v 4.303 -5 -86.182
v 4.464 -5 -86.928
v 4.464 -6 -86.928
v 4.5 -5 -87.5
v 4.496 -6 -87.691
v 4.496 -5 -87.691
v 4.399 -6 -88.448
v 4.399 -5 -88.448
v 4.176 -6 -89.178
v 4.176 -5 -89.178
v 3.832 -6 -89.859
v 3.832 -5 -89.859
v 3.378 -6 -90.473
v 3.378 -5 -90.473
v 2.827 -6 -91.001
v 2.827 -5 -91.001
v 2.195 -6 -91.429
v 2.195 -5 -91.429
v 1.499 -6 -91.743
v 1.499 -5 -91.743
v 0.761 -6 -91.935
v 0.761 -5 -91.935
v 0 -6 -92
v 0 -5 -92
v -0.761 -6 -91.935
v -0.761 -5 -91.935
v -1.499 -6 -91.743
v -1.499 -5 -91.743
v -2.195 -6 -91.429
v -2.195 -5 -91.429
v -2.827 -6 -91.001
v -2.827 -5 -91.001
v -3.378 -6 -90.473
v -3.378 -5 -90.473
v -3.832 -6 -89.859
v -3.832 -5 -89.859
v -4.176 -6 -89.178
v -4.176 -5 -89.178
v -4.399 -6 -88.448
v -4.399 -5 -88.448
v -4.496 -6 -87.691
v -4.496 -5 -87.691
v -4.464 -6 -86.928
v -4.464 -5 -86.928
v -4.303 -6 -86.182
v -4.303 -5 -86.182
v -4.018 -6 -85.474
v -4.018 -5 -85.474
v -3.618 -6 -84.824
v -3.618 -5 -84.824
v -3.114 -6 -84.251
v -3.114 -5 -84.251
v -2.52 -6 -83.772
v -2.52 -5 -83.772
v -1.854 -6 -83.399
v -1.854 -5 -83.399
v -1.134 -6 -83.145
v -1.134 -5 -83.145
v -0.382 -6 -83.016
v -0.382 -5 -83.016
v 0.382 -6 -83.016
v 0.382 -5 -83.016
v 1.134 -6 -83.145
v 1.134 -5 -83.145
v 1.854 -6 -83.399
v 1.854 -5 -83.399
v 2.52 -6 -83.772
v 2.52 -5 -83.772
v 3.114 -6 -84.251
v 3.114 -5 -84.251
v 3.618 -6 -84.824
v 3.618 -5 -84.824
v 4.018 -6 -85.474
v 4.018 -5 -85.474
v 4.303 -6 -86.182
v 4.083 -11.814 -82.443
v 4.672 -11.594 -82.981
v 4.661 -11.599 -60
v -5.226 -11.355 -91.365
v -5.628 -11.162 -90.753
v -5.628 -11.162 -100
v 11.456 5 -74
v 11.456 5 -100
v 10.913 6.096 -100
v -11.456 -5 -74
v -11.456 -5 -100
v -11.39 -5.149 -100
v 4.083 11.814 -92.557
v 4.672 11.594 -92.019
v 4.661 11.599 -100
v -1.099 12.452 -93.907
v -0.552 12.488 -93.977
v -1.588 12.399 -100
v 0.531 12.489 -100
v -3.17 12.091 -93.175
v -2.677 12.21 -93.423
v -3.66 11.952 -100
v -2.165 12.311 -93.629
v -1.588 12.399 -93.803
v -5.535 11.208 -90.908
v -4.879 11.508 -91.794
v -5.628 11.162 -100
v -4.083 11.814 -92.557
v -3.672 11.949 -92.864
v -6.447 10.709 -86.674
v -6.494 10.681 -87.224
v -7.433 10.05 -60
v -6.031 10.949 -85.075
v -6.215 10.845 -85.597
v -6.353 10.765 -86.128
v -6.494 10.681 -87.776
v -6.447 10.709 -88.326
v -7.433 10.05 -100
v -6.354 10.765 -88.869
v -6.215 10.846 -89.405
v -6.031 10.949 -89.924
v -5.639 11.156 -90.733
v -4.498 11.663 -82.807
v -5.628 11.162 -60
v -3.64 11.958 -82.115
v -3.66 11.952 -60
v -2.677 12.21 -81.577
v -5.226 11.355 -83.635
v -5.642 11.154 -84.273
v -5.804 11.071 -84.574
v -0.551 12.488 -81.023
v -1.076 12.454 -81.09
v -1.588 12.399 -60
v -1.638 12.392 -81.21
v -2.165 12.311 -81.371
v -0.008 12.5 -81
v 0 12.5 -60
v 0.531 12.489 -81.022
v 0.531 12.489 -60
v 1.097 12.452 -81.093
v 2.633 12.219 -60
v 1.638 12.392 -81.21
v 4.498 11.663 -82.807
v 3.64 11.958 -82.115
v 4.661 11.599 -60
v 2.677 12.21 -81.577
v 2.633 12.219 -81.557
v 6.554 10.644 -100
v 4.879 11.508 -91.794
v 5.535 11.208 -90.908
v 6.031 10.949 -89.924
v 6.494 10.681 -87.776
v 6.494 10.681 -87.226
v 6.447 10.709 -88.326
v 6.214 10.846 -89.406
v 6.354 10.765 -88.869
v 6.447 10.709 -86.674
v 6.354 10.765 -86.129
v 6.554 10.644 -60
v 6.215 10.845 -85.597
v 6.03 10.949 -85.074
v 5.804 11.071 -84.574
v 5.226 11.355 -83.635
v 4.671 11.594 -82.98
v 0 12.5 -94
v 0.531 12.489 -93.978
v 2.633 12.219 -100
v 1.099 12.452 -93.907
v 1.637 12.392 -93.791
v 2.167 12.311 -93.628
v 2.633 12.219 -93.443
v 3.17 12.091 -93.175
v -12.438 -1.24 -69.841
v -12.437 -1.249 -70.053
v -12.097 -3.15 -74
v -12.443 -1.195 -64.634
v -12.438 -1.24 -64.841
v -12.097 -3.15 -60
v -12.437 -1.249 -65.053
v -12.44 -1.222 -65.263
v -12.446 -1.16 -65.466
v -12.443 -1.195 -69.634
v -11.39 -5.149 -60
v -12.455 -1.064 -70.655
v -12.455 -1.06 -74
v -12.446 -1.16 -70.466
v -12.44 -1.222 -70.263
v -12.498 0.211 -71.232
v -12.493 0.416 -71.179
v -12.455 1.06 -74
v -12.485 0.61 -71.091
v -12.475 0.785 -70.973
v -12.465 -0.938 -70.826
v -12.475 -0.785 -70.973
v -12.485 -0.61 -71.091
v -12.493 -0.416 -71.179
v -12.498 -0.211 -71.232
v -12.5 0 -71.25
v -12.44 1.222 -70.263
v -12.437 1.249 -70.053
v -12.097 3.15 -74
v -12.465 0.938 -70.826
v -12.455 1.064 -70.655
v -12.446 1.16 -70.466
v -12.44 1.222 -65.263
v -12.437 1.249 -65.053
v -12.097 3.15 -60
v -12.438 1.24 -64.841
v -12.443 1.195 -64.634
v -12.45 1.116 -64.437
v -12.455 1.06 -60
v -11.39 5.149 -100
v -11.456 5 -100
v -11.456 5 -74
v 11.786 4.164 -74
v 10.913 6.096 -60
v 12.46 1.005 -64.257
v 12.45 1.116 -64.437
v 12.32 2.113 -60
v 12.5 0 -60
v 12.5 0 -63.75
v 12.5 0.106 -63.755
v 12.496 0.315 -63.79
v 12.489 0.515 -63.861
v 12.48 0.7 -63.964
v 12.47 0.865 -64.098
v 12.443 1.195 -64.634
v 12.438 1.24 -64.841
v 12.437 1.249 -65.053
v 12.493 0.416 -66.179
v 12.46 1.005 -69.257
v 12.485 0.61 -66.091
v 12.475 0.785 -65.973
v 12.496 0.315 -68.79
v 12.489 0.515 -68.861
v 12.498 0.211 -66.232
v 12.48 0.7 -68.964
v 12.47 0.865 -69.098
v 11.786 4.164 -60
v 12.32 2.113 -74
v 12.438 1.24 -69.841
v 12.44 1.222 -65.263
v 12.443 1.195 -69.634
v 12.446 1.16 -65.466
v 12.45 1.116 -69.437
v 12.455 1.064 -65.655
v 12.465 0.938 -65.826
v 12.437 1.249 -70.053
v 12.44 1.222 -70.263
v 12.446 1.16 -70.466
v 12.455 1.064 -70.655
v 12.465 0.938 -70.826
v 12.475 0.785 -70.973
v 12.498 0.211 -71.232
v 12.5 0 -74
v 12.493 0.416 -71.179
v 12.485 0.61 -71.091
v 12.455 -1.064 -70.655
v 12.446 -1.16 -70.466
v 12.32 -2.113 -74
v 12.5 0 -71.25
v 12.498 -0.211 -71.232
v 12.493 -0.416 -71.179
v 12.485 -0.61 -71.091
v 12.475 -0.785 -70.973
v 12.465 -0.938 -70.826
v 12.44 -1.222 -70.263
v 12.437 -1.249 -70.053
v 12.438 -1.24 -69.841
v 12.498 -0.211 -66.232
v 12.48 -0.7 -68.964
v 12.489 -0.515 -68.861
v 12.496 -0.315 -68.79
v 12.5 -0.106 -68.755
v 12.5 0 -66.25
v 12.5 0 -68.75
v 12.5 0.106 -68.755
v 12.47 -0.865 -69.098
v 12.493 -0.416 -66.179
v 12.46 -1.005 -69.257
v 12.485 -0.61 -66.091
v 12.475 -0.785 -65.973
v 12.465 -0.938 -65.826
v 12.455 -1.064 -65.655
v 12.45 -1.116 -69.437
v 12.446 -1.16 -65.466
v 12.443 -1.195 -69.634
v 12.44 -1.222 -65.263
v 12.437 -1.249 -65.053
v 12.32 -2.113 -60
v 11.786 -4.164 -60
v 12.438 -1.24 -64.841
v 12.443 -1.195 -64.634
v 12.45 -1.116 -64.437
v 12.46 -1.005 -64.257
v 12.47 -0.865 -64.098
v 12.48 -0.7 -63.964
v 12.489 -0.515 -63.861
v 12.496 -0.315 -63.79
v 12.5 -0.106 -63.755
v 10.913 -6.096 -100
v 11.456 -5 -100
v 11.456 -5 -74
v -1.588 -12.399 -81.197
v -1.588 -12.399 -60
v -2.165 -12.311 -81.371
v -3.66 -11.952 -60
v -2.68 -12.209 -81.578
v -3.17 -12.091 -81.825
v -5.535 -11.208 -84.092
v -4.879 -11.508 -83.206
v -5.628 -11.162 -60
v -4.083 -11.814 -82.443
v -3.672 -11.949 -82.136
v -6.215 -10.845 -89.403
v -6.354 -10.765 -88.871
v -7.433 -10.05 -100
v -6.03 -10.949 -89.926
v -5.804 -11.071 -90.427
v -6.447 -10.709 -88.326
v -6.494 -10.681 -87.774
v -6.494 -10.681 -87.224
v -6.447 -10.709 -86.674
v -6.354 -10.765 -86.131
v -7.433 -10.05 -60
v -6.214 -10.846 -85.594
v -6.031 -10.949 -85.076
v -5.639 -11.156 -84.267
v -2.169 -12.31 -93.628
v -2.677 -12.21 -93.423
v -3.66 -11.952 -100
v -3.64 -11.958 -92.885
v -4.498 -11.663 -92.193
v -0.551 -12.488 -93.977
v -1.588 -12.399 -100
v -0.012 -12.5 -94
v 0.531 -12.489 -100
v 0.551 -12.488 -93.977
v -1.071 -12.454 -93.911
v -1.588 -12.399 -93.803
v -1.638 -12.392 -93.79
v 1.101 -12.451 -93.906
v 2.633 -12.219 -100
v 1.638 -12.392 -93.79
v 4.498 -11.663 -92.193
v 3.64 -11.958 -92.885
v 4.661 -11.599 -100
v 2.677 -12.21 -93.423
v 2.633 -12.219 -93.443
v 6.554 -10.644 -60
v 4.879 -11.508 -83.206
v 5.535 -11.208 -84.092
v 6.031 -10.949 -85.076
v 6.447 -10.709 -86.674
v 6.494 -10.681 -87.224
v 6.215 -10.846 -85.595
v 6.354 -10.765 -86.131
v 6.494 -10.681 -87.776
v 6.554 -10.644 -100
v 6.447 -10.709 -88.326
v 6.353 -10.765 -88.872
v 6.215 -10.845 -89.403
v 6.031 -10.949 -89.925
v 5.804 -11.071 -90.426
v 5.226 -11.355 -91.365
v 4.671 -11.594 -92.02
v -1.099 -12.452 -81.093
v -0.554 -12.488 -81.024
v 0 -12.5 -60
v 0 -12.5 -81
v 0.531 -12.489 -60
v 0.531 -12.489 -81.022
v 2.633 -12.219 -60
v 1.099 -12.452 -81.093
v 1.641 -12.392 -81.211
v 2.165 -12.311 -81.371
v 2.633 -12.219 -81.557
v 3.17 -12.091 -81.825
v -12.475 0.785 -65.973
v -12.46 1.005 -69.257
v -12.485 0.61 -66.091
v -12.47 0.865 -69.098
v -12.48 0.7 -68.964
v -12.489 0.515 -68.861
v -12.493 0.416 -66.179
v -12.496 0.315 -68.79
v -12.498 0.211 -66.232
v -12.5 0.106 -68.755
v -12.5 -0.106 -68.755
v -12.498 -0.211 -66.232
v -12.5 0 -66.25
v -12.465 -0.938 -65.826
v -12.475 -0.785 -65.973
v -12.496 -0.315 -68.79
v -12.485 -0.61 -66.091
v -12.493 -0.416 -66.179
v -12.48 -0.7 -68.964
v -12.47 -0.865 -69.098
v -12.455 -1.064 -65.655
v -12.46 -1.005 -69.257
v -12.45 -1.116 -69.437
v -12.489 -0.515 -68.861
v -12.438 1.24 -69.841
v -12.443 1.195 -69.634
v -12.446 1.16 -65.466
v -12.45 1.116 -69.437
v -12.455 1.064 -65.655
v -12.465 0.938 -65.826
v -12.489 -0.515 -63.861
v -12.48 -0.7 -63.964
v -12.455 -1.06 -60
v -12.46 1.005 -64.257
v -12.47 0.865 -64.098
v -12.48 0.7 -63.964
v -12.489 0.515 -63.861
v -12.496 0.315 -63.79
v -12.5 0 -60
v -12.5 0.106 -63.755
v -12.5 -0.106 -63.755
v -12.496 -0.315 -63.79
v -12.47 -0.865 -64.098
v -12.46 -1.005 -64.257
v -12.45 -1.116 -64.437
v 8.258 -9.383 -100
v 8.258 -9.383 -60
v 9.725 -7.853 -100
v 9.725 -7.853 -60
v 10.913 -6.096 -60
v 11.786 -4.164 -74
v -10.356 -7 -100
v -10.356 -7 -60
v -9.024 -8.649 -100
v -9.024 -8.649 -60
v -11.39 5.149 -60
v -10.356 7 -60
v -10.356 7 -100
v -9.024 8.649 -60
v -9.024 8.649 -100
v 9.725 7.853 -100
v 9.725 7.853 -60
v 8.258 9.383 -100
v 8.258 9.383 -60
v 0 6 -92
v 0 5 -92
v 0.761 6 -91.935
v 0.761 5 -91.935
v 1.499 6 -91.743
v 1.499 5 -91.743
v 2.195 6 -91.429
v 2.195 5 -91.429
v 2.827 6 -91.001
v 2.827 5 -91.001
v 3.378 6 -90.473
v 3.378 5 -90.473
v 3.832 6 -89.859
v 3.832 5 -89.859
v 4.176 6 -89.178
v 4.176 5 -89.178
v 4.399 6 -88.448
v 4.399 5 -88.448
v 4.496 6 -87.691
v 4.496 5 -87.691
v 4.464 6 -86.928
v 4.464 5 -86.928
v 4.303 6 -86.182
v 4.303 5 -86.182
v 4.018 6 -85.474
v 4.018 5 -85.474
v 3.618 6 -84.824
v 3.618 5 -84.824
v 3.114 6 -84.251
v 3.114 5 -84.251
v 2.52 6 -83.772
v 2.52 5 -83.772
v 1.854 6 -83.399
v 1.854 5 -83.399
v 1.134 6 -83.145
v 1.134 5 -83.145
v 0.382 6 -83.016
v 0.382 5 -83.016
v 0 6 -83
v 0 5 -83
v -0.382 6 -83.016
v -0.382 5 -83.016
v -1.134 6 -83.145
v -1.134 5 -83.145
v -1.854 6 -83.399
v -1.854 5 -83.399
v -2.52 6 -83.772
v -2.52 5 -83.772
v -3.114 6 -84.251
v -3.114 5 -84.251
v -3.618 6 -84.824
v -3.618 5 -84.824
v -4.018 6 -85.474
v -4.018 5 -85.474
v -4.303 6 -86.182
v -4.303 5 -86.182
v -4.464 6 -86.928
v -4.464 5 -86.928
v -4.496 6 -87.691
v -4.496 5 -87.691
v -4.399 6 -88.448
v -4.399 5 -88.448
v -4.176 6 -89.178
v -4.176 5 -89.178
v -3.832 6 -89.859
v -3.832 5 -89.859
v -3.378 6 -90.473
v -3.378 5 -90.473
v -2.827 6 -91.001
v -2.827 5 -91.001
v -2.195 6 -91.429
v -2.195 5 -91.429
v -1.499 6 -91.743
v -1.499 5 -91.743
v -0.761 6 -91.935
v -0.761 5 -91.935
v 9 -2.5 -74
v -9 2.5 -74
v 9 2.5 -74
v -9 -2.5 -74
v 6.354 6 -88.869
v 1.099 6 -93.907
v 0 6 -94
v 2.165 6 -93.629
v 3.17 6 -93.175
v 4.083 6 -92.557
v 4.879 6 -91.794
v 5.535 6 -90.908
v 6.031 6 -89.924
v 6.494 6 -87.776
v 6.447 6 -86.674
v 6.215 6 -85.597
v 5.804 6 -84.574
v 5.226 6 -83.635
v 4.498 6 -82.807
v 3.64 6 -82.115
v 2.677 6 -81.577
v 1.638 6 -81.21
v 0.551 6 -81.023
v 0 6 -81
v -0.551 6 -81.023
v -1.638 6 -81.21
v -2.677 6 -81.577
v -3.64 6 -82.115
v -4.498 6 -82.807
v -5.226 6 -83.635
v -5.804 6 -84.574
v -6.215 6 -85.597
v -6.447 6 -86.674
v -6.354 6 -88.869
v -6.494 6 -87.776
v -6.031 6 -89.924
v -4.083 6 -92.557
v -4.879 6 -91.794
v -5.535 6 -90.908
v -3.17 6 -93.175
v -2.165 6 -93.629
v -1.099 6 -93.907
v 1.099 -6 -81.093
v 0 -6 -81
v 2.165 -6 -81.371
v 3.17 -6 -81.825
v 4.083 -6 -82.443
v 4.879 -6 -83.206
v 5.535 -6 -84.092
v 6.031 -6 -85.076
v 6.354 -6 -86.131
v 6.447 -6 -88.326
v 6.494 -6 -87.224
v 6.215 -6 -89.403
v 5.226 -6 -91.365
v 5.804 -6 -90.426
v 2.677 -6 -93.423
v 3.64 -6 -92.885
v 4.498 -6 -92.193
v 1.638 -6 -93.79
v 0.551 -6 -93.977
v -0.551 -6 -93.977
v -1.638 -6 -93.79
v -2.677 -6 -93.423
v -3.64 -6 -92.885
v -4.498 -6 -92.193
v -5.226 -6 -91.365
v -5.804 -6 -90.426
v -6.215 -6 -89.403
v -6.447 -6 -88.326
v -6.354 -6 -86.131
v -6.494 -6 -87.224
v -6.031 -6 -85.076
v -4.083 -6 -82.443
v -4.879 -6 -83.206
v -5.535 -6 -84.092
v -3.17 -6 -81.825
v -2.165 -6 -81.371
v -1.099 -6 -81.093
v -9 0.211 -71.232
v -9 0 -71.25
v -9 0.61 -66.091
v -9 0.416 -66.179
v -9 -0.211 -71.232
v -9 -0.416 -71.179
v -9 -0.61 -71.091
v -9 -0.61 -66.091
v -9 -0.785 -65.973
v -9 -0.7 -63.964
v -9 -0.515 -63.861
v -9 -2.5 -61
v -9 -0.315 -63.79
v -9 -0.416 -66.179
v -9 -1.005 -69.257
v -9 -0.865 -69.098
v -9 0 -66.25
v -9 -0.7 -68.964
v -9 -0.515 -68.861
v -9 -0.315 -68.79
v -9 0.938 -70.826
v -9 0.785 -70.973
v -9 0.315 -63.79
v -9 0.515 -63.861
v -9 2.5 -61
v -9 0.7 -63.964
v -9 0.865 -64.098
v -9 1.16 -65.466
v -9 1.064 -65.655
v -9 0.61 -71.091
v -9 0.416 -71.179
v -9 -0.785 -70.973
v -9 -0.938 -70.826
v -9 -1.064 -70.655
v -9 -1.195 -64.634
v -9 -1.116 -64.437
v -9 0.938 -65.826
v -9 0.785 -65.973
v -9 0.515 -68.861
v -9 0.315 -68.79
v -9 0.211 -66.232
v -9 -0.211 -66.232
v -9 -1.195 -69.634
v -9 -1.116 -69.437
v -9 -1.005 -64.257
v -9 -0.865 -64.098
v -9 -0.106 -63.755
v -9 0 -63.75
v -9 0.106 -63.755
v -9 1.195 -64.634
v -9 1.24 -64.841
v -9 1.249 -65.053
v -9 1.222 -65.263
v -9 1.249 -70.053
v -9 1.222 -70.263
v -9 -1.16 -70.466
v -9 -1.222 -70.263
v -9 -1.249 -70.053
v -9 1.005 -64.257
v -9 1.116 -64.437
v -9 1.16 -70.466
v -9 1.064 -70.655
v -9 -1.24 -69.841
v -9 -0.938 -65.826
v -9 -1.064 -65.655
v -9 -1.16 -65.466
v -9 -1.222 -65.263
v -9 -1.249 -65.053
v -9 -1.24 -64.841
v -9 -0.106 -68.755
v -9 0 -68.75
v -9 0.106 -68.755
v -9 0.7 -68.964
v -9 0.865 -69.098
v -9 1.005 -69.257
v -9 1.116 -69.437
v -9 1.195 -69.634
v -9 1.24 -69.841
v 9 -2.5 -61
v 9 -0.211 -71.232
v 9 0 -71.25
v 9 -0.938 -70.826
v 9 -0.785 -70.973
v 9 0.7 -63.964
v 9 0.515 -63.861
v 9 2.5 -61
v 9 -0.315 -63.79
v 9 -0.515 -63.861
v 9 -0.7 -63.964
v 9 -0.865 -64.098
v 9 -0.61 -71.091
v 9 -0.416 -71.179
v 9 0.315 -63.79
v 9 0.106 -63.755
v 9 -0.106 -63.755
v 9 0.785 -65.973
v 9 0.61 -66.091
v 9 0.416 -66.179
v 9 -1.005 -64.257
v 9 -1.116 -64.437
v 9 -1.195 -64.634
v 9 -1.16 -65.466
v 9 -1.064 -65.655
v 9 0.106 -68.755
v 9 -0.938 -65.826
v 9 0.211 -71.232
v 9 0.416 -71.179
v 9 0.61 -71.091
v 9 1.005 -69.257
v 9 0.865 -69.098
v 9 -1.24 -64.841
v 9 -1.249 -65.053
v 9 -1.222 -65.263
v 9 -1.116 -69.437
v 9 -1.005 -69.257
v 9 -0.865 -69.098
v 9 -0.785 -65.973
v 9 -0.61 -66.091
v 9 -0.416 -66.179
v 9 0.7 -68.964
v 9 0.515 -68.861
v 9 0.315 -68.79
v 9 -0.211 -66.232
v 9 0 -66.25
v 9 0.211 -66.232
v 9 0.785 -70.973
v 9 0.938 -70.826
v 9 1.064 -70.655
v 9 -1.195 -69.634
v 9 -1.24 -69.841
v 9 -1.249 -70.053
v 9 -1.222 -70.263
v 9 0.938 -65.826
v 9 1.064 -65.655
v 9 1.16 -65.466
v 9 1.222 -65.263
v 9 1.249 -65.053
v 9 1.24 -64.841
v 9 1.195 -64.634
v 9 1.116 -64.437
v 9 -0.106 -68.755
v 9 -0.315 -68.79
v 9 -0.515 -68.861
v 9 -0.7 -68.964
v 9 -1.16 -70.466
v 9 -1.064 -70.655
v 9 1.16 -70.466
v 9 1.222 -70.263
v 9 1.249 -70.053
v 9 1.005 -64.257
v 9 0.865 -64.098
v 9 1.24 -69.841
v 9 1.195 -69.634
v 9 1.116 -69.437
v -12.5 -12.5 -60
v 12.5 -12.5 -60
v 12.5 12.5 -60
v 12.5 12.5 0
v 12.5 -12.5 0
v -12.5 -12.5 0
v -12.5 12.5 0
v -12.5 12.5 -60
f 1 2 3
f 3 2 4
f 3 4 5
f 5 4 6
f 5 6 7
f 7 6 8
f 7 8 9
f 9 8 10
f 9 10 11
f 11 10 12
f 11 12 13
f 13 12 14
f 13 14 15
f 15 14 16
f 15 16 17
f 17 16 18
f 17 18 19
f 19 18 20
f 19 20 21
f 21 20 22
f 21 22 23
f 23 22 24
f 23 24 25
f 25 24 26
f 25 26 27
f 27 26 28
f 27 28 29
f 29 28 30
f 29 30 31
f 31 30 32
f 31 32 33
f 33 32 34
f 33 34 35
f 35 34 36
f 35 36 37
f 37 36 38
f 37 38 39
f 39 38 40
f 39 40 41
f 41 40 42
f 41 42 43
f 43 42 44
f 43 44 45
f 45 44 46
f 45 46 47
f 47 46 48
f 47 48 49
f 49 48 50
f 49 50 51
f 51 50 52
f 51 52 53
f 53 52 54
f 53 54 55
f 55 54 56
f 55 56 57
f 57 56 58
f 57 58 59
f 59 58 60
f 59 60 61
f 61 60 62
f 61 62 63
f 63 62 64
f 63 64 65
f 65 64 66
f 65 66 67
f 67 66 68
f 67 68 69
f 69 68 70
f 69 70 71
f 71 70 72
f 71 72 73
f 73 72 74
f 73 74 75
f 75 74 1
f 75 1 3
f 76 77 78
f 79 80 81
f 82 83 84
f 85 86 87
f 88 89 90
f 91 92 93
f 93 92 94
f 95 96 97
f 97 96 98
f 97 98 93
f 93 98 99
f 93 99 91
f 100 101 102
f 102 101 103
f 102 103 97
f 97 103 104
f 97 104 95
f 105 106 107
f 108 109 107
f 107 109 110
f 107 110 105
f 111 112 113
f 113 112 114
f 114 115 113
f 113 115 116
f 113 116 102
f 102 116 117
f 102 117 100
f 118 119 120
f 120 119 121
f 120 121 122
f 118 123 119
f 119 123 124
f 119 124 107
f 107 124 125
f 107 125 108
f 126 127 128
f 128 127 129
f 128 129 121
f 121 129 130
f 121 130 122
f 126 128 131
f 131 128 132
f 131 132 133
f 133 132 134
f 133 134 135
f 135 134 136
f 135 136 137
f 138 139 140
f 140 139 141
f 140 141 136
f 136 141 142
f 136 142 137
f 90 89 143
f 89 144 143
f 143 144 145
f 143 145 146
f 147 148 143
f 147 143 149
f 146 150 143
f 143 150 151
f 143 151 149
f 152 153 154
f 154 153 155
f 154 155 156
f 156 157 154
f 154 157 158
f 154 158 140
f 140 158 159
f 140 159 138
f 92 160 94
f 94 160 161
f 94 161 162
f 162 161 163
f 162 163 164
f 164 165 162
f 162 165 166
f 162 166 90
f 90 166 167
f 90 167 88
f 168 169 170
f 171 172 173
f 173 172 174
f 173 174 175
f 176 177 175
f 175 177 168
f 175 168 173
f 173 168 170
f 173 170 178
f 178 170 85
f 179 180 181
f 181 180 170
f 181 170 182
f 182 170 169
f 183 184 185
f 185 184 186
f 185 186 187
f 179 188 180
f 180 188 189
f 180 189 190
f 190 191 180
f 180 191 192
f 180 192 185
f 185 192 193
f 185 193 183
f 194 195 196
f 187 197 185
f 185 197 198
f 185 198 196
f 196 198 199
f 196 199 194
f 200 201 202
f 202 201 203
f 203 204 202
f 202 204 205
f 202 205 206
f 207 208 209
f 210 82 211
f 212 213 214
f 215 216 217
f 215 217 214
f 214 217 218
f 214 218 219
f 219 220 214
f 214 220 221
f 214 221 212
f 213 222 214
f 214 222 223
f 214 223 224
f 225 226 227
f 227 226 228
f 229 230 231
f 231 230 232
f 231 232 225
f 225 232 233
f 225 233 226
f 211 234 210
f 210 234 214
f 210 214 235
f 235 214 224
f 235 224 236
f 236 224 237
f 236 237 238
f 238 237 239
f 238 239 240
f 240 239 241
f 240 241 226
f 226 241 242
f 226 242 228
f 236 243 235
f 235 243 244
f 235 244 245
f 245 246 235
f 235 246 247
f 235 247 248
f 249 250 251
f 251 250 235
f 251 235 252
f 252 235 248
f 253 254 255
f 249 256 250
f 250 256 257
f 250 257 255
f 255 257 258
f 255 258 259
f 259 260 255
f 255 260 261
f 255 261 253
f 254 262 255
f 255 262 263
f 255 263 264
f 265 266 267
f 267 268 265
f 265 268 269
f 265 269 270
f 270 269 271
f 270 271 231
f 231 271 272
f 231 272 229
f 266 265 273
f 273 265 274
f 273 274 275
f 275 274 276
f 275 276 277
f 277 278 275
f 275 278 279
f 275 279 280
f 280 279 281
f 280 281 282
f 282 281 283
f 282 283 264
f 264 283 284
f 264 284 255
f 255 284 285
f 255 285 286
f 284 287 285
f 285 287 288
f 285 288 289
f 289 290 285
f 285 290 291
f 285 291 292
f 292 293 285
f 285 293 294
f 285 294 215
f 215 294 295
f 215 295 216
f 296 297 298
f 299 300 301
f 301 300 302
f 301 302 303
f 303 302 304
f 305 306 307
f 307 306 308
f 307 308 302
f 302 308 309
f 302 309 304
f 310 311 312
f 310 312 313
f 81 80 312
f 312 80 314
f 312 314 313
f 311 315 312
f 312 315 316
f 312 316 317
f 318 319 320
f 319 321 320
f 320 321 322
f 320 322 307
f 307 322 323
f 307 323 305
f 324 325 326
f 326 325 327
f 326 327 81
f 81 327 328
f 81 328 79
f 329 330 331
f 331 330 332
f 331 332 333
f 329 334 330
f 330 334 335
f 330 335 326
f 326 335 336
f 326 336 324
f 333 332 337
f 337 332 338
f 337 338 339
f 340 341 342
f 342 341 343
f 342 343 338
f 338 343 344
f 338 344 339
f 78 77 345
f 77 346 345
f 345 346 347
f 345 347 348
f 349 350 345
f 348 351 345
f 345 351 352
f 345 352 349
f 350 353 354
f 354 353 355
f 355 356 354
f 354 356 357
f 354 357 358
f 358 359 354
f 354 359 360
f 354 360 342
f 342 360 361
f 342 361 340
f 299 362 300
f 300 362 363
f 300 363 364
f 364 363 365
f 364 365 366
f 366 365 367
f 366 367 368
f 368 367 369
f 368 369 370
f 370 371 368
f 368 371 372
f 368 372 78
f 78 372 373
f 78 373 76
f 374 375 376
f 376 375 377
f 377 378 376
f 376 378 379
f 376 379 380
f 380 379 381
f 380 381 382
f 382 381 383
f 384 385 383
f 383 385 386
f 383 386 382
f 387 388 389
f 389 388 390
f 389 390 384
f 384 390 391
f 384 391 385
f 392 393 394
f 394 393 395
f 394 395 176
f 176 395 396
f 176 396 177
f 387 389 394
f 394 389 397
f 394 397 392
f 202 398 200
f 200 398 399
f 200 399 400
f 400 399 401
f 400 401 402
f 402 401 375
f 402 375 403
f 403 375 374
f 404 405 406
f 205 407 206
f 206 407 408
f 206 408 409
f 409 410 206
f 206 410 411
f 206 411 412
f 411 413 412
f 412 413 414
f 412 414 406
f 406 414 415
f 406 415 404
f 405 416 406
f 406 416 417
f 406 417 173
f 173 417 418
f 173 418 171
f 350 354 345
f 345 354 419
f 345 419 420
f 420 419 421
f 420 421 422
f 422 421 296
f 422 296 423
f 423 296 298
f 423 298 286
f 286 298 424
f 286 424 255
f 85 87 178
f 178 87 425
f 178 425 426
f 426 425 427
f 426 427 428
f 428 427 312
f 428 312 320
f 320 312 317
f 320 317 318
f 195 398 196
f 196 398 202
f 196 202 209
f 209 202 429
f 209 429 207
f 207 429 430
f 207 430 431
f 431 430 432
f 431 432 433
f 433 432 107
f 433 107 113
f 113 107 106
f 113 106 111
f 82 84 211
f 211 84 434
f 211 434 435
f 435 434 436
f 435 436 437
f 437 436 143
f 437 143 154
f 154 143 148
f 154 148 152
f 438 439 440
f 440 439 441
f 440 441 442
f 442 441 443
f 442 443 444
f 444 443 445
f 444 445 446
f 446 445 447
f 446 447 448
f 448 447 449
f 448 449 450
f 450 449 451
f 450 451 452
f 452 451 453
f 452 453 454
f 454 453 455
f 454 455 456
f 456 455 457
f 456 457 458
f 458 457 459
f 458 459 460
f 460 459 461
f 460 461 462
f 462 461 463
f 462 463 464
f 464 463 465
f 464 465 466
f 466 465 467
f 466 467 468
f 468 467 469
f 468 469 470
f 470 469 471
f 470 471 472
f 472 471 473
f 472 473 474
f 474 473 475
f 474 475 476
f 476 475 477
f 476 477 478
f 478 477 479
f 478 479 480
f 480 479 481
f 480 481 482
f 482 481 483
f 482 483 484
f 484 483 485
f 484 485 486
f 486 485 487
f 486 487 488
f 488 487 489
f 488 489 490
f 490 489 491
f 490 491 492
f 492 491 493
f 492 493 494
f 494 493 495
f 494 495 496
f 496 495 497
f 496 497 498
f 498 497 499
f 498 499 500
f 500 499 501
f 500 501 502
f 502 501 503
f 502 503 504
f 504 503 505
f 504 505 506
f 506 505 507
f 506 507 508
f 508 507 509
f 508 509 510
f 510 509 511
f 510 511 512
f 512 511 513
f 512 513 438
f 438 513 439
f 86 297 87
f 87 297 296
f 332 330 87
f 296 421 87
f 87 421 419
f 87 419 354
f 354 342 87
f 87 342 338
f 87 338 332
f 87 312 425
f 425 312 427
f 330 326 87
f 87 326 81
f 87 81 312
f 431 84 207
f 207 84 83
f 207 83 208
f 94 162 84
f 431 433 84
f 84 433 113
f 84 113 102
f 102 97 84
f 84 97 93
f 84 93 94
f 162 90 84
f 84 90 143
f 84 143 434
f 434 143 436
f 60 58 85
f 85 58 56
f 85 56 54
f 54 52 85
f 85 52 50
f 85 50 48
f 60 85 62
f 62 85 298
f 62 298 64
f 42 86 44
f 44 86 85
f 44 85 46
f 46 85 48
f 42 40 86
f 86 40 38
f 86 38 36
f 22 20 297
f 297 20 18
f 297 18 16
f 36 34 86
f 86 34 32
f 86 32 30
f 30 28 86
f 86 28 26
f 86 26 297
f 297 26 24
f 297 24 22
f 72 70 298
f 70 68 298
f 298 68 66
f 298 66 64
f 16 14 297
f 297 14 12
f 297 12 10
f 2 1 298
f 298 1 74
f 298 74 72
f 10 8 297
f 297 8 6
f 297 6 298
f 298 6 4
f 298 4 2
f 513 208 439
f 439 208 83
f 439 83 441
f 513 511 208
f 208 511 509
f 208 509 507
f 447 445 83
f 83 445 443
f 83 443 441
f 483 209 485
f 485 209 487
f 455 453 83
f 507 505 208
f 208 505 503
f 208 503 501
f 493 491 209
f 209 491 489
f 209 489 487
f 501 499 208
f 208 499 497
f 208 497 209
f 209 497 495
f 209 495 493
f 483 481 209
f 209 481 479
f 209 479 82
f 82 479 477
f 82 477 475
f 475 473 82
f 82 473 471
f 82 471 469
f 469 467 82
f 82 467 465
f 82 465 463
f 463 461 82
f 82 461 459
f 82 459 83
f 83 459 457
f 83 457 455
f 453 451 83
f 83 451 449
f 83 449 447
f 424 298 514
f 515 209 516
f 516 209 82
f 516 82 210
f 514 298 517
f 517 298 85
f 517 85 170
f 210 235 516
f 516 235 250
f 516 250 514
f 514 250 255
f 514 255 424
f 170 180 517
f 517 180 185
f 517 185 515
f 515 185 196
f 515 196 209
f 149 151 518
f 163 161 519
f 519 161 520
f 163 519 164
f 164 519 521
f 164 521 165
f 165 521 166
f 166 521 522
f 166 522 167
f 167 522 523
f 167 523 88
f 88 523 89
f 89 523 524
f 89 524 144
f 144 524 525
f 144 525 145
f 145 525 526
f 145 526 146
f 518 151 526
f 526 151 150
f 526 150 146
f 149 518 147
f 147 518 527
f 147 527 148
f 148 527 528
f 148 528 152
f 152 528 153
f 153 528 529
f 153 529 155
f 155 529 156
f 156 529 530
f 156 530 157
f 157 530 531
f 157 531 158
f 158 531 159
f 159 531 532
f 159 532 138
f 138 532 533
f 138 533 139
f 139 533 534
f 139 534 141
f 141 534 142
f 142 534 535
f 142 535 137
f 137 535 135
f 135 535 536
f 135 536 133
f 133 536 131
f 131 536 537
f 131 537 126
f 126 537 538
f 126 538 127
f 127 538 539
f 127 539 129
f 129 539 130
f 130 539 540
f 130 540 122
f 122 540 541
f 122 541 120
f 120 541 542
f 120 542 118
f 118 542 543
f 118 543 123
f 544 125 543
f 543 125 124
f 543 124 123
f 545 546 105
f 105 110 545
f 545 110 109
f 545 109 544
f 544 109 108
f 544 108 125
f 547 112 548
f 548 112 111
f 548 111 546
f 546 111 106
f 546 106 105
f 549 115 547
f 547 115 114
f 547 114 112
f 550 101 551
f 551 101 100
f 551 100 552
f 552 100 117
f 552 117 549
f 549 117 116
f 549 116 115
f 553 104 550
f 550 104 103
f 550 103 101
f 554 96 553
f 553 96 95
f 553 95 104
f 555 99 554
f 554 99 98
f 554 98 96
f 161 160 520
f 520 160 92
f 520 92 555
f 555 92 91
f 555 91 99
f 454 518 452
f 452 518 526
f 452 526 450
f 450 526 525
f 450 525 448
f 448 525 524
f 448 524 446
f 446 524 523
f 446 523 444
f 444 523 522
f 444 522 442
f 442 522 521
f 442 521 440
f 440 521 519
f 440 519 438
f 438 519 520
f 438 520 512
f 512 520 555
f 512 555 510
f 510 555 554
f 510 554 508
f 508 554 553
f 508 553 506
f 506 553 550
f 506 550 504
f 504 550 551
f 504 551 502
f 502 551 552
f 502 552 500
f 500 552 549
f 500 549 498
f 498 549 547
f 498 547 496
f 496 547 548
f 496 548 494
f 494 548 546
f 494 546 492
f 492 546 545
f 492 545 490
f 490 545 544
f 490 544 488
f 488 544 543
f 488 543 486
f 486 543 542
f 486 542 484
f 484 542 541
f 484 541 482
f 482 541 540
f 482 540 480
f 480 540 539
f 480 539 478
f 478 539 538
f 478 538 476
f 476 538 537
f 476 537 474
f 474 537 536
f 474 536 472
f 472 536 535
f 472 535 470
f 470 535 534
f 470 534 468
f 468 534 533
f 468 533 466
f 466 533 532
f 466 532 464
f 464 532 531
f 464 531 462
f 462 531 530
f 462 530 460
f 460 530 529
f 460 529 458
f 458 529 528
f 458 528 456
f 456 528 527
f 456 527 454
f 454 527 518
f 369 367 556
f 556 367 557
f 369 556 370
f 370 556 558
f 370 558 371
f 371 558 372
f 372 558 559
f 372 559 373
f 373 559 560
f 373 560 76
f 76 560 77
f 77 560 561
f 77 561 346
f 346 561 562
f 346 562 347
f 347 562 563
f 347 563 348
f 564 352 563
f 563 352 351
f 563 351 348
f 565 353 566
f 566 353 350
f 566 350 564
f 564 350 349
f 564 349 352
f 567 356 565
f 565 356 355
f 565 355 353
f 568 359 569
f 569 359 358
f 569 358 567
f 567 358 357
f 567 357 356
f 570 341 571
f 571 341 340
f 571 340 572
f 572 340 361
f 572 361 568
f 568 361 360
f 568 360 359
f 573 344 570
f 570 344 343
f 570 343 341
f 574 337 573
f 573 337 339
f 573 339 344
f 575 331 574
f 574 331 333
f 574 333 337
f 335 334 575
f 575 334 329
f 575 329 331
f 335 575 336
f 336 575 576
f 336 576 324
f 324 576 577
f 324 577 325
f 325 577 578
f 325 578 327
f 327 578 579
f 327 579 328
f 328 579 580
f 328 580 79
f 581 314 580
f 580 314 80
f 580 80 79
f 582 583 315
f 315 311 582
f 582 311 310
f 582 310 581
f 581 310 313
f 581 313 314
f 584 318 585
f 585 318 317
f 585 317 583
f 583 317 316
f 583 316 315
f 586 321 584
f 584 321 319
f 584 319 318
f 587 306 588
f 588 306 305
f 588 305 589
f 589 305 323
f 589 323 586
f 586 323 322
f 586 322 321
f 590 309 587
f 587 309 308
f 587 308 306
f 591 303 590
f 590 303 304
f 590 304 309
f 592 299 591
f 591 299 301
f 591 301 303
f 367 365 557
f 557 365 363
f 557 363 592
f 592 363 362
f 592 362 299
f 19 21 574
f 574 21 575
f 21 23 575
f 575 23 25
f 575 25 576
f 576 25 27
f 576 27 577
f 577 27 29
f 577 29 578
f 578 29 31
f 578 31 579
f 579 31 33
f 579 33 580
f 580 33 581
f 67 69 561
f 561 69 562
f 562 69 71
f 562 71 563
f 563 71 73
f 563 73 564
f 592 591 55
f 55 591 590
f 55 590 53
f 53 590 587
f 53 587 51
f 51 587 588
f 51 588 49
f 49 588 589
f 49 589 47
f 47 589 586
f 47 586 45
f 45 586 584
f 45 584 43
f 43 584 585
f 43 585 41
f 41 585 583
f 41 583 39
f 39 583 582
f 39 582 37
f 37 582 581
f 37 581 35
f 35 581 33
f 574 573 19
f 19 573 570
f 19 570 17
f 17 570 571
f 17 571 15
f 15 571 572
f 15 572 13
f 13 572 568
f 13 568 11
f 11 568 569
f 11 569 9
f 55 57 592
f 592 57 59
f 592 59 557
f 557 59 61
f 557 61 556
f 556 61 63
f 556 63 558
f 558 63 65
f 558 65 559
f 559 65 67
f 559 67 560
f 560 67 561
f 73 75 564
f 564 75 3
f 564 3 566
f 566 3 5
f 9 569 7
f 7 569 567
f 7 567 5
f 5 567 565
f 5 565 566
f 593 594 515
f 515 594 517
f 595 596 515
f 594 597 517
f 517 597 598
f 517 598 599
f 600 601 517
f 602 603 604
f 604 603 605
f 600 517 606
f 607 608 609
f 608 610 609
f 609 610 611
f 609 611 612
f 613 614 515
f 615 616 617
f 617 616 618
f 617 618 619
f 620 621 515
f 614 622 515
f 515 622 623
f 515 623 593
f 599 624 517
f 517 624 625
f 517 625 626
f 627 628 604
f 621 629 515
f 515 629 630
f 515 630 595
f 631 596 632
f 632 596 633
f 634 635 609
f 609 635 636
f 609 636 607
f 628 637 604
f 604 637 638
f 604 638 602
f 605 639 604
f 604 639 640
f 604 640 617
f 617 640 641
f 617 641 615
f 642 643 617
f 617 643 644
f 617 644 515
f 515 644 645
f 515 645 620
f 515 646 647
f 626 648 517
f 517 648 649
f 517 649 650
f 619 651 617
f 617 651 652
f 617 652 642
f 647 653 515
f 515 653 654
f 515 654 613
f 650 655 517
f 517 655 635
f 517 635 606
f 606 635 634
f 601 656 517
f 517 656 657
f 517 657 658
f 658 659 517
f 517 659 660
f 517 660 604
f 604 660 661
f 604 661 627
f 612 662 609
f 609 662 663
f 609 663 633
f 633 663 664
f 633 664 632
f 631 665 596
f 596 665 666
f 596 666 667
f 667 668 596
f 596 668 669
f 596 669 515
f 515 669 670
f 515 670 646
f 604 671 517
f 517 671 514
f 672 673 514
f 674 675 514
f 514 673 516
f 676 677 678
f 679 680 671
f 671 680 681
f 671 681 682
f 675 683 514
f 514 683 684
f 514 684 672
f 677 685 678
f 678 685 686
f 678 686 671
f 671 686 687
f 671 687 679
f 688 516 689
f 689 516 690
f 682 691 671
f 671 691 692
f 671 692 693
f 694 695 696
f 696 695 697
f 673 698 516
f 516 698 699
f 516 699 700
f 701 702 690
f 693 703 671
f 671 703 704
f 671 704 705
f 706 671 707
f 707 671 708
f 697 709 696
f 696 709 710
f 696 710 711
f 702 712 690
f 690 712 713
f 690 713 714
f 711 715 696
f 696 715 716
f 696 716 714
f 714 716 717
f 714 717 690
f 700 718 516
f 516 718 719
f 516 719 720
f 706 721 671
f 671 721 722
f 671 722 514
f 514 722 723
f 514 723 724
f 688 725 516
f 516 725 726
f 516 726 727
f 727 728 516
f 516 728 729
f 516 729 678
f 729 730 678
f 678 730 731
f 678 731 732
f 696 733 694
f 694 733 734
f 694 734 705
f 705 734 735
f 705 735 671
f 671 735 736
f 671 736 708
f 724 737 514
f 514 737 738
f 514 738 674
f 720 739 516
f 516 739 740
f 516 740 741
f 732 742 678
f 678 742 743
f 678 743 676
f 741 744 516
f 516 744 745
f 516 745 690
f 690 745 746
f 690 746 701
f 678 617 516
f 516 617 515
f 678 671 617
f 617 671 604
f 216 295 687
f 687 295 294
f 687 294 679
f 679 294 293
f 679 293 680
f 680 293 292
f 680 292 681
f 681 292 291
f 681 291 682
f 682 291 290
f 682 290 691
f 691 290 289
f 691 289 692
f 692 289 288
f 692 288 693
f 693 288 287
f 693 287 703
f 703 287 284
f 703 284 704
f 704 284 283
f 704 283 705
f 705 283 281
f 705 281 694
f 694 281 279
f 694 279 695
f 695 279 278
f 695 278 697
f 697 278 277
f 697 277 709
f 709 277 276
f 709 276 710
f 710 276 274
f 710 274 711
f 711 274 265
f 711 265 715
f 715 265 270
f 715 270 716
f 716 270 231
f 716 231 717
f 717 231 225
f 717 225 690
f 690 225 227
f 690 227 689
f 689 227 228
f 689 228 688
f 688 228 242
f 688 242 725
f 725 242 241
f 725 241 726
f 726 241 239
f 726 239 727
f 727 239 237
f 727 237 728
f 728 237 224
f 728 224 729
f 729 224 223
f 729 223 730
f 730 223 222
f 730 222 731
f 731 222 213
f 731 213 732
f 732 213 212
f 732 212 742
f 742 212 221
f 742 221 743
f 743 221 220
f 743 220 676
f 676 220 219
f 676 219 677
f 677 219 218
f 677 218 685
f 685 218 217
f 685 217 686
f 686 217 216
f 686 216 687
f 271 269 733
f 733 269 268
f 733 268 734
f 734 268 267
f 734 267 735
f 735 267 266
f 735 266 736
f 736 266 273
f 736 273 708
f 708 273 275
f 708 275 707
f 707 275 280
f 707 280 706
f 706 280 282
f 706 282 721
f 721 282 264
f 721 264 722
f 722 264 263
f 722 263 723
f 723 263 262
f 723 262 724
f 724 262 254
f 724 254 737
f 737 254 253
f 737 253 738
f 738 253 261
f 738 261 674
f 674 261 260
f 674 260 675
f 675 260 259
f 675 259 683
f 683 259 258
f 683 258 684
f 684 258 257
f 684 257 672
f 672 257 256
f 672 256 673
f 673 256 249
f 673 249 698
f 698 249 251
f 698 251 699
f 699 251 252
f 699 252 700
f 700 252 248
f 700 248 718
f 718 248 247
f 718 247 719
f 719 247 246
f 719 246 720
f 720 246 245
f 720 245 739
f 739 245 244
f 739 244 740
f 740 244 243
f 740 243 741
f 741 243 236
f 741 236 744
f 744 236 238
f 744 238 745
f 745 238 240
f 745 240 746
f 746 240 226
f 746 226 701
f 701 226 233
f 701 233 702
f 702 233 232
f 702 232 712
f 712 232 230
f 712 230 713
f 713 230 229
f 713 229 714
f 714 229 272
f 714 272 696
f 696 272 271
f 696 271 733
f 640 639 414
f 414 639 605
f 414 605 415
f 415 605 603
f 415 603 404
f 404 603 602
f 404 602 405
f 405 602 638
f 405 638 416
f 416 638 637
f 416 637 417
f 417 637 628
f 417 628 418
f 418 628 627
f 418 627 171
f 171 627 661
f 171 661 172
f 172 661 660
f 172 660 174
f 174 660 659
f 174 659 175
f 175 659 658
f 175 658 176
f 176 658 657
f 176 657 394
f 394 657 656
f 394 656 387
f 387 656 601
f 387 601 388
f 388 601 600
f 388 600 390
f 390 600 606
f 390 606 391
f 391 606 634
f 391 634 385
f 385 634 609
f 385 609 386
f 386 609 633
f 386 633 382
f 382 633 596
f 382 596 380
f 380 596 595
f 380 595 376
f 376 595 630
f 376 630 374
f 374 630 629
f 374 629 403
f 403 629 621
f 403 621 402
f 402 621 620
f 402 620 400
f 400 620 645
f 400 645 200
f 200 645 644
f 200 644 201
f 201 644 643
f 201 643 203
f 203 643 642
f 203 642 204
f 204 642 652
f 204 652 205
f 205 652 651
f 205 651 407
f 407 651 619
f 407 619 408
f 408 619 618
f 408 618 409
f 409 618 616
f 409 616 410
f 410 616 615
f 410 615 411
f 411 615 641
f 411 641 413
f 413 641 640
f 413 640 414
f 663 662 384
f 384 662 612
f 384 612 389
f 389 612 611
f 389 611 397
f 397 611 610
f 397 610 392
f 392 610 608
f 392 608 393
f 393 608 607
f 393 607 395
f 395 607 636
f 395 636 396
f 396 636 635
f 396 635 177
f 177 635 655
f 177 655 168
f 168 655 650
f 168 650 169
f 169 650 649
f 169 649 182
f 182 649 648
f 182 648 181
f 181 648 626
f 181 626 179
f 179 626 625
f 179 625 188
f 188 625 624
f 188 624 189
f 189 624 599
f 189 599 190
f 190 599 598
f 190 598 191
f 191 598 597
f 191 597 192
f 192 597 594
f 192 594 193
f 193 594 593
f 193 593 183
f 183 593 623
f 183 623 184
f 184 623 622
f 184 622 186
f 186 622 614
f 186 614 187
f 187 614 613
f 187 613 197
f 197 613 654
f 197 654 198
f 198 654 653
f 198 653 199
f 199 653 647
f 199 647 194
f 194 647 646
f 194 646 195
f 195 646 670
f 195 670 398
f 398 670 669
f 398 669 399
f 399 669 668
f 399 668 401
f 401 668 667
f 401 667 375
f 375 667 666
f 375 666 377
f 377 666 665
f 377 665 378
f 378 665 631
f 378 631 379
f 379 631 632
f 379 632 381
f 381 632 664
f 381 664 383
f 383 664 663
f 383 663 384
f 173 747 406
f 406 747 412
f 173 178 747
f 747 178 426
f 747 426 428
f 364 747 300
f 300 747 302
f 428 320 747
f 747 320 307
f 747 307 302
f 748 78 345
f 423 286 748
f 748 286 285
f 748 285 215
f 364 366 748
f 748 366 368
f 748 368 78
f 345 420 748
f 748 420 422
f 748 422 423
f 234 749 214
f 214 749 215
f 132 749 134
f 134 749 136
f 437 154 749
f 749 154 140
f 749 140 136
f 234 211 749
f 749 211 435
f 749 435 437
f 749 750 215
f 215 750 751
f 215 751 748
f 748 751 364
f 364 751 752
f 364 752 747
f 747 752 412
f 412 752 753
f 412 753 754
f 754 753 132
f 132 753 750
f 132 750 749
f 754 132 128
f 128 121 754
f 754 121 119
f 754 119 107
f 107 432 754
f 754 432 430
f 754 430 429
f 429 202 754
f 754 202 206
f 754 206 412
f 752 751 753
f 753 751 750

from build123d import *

# Parameters (mm, degrees)
SKETCH_1_R               = 12.5
EXTRUDE_1_DEPTH          = 100
CUT_EXTRUDE_START        = -26
CUT_EXTRUDE_1_DEPTH      = 26
CUT_EXTRUDE_2_DEPTH      = 34
CUT_EXTRUDE_2_DEPTH_BACK = 36.534771414
SKETCH_3_R               = 4.5
SKETCH_6_R               = 6.5
CUT_EXTRUDE_5_DEPTH      = 16
SKETCH_7_W               = 18
SKETCH_7_H               = 5
CUT_EXTRUDE_6_DEPTH      = 13
SKETCH_9_R               = 1.25
CUT_EXTRUDE_7_DEPTH      = 44
SKETCH_10_W              = 25
SKETCH_10_H              = 25
EXTRUDE_2_DEPTH          = 60


with BuildPart() as part:
    # 스케치1 → 보스-돌출1 (new body)
    with BuildSketch(Plane.XY):
        Circle(SKETCH_1_R)
    extrude(amount=-EXTRUDE_1_DEPTH)

    # 스케치2 → 컷-돌출1 (cut)
    with BuildSketch(Plane(origin=(0, 0, -100), x_dir=(-1, 0, 0), z_dir=(0, 0, -1)).offset(CUT_EXTRUDE_START)):
        with BuildLine():
            Line((11.456439237, 5), (-11.456439237, 5))
            ThreePointArc((-11.456439237, 5), (-12.5, 0), (-11.456439237, -5))
            Line((-11.456439237, -5), (11.456439237, -5))
            ThreePointArc((11.456439237, -5), (12.5, 0), (11.456439237, 5))
        make_face()
    extrude(amount=CUT_EXTRUDE_1_DEPTH, mode=Mode.SUBTRACT)

    # 스케치3 → 컷-돌출2 (cut, two sides: drawn at the far end of the back side and taken through both)
    with BuildSketch(Plane(origin=(0, 0, 0), x_dir=(1, 0, 0), z_dir=(0, 1, 0)).offset(-CUT_EXTRUDE_2_DEPTH_BACK)):
        with Locations(Location((0, 87.5, 0), (0, 0, 90))):
            Circle(SKETCH_3_R)
    extrude(amount=CUT_EXTRUDE_2_DEPTH + CUT_EXTRUDE_2_DEPTH_BACK, mode=Mode.SUBTRACT)

    # 스케치6 → 컷-돌출5 (cut)
    with BuildSketch(Plane(origin=(0, 6, 0), x_dir=(1, 0, 0), z_dir=(0, 1, 0))):
        with Locations(Location((0, 87.5, 0), (0, 0, 90))):
            Circle(SKETCH_6_R)
    cut_extrude_5 = extrude(amount=CUT_EXTRUDE_5_DEPTH, mode=Mode.SUBTRACT)

    # 대칭 복사1: 컷-돌출5 across plane
    add(cut_extrude_5.mirror(Plane.ZX), mode=Mode.SUBTRACT)

    # 스케치7 → 컷-돌출6 (cut)
    with BuildSketch(Plane(origin=(0, 0, -74), x_dir=(-1, 0, 0), z_dir=(0, 0, -1))):
        Rectangle(SKETCH_7_W, SKETCH_7_H)
    extrude(amount=-CUT_EXTRUDE_6_DEPTH, mode=Mode.SUBTRACT)

    # 스케치9 → 컷-돌출7 (cut)
    with BuildSketch(Plane(origin=(12.5, 0, 0), x_dir=(0, 0, -1), z_dir=(1, 0, 0))):
        with Locations((70, 0)):
            Circle(SKETCH_9_R)
        with Locations((65, 0)):
            Circle(SKETCH_9_R)
    extrude(amount=-CUT_EXTRUDE_7_DEPTH, mode=Mode.SUBTRACT)

    # 스케치10 → 보스-돌출2 (add)
    with BuildSketch(Plane.XY):
        Rectangle(SKETCH_10_W, SKETCH_10_H)
    extrude(amount=-EXTRUDE_2_DEPTH)


solid = part.part
